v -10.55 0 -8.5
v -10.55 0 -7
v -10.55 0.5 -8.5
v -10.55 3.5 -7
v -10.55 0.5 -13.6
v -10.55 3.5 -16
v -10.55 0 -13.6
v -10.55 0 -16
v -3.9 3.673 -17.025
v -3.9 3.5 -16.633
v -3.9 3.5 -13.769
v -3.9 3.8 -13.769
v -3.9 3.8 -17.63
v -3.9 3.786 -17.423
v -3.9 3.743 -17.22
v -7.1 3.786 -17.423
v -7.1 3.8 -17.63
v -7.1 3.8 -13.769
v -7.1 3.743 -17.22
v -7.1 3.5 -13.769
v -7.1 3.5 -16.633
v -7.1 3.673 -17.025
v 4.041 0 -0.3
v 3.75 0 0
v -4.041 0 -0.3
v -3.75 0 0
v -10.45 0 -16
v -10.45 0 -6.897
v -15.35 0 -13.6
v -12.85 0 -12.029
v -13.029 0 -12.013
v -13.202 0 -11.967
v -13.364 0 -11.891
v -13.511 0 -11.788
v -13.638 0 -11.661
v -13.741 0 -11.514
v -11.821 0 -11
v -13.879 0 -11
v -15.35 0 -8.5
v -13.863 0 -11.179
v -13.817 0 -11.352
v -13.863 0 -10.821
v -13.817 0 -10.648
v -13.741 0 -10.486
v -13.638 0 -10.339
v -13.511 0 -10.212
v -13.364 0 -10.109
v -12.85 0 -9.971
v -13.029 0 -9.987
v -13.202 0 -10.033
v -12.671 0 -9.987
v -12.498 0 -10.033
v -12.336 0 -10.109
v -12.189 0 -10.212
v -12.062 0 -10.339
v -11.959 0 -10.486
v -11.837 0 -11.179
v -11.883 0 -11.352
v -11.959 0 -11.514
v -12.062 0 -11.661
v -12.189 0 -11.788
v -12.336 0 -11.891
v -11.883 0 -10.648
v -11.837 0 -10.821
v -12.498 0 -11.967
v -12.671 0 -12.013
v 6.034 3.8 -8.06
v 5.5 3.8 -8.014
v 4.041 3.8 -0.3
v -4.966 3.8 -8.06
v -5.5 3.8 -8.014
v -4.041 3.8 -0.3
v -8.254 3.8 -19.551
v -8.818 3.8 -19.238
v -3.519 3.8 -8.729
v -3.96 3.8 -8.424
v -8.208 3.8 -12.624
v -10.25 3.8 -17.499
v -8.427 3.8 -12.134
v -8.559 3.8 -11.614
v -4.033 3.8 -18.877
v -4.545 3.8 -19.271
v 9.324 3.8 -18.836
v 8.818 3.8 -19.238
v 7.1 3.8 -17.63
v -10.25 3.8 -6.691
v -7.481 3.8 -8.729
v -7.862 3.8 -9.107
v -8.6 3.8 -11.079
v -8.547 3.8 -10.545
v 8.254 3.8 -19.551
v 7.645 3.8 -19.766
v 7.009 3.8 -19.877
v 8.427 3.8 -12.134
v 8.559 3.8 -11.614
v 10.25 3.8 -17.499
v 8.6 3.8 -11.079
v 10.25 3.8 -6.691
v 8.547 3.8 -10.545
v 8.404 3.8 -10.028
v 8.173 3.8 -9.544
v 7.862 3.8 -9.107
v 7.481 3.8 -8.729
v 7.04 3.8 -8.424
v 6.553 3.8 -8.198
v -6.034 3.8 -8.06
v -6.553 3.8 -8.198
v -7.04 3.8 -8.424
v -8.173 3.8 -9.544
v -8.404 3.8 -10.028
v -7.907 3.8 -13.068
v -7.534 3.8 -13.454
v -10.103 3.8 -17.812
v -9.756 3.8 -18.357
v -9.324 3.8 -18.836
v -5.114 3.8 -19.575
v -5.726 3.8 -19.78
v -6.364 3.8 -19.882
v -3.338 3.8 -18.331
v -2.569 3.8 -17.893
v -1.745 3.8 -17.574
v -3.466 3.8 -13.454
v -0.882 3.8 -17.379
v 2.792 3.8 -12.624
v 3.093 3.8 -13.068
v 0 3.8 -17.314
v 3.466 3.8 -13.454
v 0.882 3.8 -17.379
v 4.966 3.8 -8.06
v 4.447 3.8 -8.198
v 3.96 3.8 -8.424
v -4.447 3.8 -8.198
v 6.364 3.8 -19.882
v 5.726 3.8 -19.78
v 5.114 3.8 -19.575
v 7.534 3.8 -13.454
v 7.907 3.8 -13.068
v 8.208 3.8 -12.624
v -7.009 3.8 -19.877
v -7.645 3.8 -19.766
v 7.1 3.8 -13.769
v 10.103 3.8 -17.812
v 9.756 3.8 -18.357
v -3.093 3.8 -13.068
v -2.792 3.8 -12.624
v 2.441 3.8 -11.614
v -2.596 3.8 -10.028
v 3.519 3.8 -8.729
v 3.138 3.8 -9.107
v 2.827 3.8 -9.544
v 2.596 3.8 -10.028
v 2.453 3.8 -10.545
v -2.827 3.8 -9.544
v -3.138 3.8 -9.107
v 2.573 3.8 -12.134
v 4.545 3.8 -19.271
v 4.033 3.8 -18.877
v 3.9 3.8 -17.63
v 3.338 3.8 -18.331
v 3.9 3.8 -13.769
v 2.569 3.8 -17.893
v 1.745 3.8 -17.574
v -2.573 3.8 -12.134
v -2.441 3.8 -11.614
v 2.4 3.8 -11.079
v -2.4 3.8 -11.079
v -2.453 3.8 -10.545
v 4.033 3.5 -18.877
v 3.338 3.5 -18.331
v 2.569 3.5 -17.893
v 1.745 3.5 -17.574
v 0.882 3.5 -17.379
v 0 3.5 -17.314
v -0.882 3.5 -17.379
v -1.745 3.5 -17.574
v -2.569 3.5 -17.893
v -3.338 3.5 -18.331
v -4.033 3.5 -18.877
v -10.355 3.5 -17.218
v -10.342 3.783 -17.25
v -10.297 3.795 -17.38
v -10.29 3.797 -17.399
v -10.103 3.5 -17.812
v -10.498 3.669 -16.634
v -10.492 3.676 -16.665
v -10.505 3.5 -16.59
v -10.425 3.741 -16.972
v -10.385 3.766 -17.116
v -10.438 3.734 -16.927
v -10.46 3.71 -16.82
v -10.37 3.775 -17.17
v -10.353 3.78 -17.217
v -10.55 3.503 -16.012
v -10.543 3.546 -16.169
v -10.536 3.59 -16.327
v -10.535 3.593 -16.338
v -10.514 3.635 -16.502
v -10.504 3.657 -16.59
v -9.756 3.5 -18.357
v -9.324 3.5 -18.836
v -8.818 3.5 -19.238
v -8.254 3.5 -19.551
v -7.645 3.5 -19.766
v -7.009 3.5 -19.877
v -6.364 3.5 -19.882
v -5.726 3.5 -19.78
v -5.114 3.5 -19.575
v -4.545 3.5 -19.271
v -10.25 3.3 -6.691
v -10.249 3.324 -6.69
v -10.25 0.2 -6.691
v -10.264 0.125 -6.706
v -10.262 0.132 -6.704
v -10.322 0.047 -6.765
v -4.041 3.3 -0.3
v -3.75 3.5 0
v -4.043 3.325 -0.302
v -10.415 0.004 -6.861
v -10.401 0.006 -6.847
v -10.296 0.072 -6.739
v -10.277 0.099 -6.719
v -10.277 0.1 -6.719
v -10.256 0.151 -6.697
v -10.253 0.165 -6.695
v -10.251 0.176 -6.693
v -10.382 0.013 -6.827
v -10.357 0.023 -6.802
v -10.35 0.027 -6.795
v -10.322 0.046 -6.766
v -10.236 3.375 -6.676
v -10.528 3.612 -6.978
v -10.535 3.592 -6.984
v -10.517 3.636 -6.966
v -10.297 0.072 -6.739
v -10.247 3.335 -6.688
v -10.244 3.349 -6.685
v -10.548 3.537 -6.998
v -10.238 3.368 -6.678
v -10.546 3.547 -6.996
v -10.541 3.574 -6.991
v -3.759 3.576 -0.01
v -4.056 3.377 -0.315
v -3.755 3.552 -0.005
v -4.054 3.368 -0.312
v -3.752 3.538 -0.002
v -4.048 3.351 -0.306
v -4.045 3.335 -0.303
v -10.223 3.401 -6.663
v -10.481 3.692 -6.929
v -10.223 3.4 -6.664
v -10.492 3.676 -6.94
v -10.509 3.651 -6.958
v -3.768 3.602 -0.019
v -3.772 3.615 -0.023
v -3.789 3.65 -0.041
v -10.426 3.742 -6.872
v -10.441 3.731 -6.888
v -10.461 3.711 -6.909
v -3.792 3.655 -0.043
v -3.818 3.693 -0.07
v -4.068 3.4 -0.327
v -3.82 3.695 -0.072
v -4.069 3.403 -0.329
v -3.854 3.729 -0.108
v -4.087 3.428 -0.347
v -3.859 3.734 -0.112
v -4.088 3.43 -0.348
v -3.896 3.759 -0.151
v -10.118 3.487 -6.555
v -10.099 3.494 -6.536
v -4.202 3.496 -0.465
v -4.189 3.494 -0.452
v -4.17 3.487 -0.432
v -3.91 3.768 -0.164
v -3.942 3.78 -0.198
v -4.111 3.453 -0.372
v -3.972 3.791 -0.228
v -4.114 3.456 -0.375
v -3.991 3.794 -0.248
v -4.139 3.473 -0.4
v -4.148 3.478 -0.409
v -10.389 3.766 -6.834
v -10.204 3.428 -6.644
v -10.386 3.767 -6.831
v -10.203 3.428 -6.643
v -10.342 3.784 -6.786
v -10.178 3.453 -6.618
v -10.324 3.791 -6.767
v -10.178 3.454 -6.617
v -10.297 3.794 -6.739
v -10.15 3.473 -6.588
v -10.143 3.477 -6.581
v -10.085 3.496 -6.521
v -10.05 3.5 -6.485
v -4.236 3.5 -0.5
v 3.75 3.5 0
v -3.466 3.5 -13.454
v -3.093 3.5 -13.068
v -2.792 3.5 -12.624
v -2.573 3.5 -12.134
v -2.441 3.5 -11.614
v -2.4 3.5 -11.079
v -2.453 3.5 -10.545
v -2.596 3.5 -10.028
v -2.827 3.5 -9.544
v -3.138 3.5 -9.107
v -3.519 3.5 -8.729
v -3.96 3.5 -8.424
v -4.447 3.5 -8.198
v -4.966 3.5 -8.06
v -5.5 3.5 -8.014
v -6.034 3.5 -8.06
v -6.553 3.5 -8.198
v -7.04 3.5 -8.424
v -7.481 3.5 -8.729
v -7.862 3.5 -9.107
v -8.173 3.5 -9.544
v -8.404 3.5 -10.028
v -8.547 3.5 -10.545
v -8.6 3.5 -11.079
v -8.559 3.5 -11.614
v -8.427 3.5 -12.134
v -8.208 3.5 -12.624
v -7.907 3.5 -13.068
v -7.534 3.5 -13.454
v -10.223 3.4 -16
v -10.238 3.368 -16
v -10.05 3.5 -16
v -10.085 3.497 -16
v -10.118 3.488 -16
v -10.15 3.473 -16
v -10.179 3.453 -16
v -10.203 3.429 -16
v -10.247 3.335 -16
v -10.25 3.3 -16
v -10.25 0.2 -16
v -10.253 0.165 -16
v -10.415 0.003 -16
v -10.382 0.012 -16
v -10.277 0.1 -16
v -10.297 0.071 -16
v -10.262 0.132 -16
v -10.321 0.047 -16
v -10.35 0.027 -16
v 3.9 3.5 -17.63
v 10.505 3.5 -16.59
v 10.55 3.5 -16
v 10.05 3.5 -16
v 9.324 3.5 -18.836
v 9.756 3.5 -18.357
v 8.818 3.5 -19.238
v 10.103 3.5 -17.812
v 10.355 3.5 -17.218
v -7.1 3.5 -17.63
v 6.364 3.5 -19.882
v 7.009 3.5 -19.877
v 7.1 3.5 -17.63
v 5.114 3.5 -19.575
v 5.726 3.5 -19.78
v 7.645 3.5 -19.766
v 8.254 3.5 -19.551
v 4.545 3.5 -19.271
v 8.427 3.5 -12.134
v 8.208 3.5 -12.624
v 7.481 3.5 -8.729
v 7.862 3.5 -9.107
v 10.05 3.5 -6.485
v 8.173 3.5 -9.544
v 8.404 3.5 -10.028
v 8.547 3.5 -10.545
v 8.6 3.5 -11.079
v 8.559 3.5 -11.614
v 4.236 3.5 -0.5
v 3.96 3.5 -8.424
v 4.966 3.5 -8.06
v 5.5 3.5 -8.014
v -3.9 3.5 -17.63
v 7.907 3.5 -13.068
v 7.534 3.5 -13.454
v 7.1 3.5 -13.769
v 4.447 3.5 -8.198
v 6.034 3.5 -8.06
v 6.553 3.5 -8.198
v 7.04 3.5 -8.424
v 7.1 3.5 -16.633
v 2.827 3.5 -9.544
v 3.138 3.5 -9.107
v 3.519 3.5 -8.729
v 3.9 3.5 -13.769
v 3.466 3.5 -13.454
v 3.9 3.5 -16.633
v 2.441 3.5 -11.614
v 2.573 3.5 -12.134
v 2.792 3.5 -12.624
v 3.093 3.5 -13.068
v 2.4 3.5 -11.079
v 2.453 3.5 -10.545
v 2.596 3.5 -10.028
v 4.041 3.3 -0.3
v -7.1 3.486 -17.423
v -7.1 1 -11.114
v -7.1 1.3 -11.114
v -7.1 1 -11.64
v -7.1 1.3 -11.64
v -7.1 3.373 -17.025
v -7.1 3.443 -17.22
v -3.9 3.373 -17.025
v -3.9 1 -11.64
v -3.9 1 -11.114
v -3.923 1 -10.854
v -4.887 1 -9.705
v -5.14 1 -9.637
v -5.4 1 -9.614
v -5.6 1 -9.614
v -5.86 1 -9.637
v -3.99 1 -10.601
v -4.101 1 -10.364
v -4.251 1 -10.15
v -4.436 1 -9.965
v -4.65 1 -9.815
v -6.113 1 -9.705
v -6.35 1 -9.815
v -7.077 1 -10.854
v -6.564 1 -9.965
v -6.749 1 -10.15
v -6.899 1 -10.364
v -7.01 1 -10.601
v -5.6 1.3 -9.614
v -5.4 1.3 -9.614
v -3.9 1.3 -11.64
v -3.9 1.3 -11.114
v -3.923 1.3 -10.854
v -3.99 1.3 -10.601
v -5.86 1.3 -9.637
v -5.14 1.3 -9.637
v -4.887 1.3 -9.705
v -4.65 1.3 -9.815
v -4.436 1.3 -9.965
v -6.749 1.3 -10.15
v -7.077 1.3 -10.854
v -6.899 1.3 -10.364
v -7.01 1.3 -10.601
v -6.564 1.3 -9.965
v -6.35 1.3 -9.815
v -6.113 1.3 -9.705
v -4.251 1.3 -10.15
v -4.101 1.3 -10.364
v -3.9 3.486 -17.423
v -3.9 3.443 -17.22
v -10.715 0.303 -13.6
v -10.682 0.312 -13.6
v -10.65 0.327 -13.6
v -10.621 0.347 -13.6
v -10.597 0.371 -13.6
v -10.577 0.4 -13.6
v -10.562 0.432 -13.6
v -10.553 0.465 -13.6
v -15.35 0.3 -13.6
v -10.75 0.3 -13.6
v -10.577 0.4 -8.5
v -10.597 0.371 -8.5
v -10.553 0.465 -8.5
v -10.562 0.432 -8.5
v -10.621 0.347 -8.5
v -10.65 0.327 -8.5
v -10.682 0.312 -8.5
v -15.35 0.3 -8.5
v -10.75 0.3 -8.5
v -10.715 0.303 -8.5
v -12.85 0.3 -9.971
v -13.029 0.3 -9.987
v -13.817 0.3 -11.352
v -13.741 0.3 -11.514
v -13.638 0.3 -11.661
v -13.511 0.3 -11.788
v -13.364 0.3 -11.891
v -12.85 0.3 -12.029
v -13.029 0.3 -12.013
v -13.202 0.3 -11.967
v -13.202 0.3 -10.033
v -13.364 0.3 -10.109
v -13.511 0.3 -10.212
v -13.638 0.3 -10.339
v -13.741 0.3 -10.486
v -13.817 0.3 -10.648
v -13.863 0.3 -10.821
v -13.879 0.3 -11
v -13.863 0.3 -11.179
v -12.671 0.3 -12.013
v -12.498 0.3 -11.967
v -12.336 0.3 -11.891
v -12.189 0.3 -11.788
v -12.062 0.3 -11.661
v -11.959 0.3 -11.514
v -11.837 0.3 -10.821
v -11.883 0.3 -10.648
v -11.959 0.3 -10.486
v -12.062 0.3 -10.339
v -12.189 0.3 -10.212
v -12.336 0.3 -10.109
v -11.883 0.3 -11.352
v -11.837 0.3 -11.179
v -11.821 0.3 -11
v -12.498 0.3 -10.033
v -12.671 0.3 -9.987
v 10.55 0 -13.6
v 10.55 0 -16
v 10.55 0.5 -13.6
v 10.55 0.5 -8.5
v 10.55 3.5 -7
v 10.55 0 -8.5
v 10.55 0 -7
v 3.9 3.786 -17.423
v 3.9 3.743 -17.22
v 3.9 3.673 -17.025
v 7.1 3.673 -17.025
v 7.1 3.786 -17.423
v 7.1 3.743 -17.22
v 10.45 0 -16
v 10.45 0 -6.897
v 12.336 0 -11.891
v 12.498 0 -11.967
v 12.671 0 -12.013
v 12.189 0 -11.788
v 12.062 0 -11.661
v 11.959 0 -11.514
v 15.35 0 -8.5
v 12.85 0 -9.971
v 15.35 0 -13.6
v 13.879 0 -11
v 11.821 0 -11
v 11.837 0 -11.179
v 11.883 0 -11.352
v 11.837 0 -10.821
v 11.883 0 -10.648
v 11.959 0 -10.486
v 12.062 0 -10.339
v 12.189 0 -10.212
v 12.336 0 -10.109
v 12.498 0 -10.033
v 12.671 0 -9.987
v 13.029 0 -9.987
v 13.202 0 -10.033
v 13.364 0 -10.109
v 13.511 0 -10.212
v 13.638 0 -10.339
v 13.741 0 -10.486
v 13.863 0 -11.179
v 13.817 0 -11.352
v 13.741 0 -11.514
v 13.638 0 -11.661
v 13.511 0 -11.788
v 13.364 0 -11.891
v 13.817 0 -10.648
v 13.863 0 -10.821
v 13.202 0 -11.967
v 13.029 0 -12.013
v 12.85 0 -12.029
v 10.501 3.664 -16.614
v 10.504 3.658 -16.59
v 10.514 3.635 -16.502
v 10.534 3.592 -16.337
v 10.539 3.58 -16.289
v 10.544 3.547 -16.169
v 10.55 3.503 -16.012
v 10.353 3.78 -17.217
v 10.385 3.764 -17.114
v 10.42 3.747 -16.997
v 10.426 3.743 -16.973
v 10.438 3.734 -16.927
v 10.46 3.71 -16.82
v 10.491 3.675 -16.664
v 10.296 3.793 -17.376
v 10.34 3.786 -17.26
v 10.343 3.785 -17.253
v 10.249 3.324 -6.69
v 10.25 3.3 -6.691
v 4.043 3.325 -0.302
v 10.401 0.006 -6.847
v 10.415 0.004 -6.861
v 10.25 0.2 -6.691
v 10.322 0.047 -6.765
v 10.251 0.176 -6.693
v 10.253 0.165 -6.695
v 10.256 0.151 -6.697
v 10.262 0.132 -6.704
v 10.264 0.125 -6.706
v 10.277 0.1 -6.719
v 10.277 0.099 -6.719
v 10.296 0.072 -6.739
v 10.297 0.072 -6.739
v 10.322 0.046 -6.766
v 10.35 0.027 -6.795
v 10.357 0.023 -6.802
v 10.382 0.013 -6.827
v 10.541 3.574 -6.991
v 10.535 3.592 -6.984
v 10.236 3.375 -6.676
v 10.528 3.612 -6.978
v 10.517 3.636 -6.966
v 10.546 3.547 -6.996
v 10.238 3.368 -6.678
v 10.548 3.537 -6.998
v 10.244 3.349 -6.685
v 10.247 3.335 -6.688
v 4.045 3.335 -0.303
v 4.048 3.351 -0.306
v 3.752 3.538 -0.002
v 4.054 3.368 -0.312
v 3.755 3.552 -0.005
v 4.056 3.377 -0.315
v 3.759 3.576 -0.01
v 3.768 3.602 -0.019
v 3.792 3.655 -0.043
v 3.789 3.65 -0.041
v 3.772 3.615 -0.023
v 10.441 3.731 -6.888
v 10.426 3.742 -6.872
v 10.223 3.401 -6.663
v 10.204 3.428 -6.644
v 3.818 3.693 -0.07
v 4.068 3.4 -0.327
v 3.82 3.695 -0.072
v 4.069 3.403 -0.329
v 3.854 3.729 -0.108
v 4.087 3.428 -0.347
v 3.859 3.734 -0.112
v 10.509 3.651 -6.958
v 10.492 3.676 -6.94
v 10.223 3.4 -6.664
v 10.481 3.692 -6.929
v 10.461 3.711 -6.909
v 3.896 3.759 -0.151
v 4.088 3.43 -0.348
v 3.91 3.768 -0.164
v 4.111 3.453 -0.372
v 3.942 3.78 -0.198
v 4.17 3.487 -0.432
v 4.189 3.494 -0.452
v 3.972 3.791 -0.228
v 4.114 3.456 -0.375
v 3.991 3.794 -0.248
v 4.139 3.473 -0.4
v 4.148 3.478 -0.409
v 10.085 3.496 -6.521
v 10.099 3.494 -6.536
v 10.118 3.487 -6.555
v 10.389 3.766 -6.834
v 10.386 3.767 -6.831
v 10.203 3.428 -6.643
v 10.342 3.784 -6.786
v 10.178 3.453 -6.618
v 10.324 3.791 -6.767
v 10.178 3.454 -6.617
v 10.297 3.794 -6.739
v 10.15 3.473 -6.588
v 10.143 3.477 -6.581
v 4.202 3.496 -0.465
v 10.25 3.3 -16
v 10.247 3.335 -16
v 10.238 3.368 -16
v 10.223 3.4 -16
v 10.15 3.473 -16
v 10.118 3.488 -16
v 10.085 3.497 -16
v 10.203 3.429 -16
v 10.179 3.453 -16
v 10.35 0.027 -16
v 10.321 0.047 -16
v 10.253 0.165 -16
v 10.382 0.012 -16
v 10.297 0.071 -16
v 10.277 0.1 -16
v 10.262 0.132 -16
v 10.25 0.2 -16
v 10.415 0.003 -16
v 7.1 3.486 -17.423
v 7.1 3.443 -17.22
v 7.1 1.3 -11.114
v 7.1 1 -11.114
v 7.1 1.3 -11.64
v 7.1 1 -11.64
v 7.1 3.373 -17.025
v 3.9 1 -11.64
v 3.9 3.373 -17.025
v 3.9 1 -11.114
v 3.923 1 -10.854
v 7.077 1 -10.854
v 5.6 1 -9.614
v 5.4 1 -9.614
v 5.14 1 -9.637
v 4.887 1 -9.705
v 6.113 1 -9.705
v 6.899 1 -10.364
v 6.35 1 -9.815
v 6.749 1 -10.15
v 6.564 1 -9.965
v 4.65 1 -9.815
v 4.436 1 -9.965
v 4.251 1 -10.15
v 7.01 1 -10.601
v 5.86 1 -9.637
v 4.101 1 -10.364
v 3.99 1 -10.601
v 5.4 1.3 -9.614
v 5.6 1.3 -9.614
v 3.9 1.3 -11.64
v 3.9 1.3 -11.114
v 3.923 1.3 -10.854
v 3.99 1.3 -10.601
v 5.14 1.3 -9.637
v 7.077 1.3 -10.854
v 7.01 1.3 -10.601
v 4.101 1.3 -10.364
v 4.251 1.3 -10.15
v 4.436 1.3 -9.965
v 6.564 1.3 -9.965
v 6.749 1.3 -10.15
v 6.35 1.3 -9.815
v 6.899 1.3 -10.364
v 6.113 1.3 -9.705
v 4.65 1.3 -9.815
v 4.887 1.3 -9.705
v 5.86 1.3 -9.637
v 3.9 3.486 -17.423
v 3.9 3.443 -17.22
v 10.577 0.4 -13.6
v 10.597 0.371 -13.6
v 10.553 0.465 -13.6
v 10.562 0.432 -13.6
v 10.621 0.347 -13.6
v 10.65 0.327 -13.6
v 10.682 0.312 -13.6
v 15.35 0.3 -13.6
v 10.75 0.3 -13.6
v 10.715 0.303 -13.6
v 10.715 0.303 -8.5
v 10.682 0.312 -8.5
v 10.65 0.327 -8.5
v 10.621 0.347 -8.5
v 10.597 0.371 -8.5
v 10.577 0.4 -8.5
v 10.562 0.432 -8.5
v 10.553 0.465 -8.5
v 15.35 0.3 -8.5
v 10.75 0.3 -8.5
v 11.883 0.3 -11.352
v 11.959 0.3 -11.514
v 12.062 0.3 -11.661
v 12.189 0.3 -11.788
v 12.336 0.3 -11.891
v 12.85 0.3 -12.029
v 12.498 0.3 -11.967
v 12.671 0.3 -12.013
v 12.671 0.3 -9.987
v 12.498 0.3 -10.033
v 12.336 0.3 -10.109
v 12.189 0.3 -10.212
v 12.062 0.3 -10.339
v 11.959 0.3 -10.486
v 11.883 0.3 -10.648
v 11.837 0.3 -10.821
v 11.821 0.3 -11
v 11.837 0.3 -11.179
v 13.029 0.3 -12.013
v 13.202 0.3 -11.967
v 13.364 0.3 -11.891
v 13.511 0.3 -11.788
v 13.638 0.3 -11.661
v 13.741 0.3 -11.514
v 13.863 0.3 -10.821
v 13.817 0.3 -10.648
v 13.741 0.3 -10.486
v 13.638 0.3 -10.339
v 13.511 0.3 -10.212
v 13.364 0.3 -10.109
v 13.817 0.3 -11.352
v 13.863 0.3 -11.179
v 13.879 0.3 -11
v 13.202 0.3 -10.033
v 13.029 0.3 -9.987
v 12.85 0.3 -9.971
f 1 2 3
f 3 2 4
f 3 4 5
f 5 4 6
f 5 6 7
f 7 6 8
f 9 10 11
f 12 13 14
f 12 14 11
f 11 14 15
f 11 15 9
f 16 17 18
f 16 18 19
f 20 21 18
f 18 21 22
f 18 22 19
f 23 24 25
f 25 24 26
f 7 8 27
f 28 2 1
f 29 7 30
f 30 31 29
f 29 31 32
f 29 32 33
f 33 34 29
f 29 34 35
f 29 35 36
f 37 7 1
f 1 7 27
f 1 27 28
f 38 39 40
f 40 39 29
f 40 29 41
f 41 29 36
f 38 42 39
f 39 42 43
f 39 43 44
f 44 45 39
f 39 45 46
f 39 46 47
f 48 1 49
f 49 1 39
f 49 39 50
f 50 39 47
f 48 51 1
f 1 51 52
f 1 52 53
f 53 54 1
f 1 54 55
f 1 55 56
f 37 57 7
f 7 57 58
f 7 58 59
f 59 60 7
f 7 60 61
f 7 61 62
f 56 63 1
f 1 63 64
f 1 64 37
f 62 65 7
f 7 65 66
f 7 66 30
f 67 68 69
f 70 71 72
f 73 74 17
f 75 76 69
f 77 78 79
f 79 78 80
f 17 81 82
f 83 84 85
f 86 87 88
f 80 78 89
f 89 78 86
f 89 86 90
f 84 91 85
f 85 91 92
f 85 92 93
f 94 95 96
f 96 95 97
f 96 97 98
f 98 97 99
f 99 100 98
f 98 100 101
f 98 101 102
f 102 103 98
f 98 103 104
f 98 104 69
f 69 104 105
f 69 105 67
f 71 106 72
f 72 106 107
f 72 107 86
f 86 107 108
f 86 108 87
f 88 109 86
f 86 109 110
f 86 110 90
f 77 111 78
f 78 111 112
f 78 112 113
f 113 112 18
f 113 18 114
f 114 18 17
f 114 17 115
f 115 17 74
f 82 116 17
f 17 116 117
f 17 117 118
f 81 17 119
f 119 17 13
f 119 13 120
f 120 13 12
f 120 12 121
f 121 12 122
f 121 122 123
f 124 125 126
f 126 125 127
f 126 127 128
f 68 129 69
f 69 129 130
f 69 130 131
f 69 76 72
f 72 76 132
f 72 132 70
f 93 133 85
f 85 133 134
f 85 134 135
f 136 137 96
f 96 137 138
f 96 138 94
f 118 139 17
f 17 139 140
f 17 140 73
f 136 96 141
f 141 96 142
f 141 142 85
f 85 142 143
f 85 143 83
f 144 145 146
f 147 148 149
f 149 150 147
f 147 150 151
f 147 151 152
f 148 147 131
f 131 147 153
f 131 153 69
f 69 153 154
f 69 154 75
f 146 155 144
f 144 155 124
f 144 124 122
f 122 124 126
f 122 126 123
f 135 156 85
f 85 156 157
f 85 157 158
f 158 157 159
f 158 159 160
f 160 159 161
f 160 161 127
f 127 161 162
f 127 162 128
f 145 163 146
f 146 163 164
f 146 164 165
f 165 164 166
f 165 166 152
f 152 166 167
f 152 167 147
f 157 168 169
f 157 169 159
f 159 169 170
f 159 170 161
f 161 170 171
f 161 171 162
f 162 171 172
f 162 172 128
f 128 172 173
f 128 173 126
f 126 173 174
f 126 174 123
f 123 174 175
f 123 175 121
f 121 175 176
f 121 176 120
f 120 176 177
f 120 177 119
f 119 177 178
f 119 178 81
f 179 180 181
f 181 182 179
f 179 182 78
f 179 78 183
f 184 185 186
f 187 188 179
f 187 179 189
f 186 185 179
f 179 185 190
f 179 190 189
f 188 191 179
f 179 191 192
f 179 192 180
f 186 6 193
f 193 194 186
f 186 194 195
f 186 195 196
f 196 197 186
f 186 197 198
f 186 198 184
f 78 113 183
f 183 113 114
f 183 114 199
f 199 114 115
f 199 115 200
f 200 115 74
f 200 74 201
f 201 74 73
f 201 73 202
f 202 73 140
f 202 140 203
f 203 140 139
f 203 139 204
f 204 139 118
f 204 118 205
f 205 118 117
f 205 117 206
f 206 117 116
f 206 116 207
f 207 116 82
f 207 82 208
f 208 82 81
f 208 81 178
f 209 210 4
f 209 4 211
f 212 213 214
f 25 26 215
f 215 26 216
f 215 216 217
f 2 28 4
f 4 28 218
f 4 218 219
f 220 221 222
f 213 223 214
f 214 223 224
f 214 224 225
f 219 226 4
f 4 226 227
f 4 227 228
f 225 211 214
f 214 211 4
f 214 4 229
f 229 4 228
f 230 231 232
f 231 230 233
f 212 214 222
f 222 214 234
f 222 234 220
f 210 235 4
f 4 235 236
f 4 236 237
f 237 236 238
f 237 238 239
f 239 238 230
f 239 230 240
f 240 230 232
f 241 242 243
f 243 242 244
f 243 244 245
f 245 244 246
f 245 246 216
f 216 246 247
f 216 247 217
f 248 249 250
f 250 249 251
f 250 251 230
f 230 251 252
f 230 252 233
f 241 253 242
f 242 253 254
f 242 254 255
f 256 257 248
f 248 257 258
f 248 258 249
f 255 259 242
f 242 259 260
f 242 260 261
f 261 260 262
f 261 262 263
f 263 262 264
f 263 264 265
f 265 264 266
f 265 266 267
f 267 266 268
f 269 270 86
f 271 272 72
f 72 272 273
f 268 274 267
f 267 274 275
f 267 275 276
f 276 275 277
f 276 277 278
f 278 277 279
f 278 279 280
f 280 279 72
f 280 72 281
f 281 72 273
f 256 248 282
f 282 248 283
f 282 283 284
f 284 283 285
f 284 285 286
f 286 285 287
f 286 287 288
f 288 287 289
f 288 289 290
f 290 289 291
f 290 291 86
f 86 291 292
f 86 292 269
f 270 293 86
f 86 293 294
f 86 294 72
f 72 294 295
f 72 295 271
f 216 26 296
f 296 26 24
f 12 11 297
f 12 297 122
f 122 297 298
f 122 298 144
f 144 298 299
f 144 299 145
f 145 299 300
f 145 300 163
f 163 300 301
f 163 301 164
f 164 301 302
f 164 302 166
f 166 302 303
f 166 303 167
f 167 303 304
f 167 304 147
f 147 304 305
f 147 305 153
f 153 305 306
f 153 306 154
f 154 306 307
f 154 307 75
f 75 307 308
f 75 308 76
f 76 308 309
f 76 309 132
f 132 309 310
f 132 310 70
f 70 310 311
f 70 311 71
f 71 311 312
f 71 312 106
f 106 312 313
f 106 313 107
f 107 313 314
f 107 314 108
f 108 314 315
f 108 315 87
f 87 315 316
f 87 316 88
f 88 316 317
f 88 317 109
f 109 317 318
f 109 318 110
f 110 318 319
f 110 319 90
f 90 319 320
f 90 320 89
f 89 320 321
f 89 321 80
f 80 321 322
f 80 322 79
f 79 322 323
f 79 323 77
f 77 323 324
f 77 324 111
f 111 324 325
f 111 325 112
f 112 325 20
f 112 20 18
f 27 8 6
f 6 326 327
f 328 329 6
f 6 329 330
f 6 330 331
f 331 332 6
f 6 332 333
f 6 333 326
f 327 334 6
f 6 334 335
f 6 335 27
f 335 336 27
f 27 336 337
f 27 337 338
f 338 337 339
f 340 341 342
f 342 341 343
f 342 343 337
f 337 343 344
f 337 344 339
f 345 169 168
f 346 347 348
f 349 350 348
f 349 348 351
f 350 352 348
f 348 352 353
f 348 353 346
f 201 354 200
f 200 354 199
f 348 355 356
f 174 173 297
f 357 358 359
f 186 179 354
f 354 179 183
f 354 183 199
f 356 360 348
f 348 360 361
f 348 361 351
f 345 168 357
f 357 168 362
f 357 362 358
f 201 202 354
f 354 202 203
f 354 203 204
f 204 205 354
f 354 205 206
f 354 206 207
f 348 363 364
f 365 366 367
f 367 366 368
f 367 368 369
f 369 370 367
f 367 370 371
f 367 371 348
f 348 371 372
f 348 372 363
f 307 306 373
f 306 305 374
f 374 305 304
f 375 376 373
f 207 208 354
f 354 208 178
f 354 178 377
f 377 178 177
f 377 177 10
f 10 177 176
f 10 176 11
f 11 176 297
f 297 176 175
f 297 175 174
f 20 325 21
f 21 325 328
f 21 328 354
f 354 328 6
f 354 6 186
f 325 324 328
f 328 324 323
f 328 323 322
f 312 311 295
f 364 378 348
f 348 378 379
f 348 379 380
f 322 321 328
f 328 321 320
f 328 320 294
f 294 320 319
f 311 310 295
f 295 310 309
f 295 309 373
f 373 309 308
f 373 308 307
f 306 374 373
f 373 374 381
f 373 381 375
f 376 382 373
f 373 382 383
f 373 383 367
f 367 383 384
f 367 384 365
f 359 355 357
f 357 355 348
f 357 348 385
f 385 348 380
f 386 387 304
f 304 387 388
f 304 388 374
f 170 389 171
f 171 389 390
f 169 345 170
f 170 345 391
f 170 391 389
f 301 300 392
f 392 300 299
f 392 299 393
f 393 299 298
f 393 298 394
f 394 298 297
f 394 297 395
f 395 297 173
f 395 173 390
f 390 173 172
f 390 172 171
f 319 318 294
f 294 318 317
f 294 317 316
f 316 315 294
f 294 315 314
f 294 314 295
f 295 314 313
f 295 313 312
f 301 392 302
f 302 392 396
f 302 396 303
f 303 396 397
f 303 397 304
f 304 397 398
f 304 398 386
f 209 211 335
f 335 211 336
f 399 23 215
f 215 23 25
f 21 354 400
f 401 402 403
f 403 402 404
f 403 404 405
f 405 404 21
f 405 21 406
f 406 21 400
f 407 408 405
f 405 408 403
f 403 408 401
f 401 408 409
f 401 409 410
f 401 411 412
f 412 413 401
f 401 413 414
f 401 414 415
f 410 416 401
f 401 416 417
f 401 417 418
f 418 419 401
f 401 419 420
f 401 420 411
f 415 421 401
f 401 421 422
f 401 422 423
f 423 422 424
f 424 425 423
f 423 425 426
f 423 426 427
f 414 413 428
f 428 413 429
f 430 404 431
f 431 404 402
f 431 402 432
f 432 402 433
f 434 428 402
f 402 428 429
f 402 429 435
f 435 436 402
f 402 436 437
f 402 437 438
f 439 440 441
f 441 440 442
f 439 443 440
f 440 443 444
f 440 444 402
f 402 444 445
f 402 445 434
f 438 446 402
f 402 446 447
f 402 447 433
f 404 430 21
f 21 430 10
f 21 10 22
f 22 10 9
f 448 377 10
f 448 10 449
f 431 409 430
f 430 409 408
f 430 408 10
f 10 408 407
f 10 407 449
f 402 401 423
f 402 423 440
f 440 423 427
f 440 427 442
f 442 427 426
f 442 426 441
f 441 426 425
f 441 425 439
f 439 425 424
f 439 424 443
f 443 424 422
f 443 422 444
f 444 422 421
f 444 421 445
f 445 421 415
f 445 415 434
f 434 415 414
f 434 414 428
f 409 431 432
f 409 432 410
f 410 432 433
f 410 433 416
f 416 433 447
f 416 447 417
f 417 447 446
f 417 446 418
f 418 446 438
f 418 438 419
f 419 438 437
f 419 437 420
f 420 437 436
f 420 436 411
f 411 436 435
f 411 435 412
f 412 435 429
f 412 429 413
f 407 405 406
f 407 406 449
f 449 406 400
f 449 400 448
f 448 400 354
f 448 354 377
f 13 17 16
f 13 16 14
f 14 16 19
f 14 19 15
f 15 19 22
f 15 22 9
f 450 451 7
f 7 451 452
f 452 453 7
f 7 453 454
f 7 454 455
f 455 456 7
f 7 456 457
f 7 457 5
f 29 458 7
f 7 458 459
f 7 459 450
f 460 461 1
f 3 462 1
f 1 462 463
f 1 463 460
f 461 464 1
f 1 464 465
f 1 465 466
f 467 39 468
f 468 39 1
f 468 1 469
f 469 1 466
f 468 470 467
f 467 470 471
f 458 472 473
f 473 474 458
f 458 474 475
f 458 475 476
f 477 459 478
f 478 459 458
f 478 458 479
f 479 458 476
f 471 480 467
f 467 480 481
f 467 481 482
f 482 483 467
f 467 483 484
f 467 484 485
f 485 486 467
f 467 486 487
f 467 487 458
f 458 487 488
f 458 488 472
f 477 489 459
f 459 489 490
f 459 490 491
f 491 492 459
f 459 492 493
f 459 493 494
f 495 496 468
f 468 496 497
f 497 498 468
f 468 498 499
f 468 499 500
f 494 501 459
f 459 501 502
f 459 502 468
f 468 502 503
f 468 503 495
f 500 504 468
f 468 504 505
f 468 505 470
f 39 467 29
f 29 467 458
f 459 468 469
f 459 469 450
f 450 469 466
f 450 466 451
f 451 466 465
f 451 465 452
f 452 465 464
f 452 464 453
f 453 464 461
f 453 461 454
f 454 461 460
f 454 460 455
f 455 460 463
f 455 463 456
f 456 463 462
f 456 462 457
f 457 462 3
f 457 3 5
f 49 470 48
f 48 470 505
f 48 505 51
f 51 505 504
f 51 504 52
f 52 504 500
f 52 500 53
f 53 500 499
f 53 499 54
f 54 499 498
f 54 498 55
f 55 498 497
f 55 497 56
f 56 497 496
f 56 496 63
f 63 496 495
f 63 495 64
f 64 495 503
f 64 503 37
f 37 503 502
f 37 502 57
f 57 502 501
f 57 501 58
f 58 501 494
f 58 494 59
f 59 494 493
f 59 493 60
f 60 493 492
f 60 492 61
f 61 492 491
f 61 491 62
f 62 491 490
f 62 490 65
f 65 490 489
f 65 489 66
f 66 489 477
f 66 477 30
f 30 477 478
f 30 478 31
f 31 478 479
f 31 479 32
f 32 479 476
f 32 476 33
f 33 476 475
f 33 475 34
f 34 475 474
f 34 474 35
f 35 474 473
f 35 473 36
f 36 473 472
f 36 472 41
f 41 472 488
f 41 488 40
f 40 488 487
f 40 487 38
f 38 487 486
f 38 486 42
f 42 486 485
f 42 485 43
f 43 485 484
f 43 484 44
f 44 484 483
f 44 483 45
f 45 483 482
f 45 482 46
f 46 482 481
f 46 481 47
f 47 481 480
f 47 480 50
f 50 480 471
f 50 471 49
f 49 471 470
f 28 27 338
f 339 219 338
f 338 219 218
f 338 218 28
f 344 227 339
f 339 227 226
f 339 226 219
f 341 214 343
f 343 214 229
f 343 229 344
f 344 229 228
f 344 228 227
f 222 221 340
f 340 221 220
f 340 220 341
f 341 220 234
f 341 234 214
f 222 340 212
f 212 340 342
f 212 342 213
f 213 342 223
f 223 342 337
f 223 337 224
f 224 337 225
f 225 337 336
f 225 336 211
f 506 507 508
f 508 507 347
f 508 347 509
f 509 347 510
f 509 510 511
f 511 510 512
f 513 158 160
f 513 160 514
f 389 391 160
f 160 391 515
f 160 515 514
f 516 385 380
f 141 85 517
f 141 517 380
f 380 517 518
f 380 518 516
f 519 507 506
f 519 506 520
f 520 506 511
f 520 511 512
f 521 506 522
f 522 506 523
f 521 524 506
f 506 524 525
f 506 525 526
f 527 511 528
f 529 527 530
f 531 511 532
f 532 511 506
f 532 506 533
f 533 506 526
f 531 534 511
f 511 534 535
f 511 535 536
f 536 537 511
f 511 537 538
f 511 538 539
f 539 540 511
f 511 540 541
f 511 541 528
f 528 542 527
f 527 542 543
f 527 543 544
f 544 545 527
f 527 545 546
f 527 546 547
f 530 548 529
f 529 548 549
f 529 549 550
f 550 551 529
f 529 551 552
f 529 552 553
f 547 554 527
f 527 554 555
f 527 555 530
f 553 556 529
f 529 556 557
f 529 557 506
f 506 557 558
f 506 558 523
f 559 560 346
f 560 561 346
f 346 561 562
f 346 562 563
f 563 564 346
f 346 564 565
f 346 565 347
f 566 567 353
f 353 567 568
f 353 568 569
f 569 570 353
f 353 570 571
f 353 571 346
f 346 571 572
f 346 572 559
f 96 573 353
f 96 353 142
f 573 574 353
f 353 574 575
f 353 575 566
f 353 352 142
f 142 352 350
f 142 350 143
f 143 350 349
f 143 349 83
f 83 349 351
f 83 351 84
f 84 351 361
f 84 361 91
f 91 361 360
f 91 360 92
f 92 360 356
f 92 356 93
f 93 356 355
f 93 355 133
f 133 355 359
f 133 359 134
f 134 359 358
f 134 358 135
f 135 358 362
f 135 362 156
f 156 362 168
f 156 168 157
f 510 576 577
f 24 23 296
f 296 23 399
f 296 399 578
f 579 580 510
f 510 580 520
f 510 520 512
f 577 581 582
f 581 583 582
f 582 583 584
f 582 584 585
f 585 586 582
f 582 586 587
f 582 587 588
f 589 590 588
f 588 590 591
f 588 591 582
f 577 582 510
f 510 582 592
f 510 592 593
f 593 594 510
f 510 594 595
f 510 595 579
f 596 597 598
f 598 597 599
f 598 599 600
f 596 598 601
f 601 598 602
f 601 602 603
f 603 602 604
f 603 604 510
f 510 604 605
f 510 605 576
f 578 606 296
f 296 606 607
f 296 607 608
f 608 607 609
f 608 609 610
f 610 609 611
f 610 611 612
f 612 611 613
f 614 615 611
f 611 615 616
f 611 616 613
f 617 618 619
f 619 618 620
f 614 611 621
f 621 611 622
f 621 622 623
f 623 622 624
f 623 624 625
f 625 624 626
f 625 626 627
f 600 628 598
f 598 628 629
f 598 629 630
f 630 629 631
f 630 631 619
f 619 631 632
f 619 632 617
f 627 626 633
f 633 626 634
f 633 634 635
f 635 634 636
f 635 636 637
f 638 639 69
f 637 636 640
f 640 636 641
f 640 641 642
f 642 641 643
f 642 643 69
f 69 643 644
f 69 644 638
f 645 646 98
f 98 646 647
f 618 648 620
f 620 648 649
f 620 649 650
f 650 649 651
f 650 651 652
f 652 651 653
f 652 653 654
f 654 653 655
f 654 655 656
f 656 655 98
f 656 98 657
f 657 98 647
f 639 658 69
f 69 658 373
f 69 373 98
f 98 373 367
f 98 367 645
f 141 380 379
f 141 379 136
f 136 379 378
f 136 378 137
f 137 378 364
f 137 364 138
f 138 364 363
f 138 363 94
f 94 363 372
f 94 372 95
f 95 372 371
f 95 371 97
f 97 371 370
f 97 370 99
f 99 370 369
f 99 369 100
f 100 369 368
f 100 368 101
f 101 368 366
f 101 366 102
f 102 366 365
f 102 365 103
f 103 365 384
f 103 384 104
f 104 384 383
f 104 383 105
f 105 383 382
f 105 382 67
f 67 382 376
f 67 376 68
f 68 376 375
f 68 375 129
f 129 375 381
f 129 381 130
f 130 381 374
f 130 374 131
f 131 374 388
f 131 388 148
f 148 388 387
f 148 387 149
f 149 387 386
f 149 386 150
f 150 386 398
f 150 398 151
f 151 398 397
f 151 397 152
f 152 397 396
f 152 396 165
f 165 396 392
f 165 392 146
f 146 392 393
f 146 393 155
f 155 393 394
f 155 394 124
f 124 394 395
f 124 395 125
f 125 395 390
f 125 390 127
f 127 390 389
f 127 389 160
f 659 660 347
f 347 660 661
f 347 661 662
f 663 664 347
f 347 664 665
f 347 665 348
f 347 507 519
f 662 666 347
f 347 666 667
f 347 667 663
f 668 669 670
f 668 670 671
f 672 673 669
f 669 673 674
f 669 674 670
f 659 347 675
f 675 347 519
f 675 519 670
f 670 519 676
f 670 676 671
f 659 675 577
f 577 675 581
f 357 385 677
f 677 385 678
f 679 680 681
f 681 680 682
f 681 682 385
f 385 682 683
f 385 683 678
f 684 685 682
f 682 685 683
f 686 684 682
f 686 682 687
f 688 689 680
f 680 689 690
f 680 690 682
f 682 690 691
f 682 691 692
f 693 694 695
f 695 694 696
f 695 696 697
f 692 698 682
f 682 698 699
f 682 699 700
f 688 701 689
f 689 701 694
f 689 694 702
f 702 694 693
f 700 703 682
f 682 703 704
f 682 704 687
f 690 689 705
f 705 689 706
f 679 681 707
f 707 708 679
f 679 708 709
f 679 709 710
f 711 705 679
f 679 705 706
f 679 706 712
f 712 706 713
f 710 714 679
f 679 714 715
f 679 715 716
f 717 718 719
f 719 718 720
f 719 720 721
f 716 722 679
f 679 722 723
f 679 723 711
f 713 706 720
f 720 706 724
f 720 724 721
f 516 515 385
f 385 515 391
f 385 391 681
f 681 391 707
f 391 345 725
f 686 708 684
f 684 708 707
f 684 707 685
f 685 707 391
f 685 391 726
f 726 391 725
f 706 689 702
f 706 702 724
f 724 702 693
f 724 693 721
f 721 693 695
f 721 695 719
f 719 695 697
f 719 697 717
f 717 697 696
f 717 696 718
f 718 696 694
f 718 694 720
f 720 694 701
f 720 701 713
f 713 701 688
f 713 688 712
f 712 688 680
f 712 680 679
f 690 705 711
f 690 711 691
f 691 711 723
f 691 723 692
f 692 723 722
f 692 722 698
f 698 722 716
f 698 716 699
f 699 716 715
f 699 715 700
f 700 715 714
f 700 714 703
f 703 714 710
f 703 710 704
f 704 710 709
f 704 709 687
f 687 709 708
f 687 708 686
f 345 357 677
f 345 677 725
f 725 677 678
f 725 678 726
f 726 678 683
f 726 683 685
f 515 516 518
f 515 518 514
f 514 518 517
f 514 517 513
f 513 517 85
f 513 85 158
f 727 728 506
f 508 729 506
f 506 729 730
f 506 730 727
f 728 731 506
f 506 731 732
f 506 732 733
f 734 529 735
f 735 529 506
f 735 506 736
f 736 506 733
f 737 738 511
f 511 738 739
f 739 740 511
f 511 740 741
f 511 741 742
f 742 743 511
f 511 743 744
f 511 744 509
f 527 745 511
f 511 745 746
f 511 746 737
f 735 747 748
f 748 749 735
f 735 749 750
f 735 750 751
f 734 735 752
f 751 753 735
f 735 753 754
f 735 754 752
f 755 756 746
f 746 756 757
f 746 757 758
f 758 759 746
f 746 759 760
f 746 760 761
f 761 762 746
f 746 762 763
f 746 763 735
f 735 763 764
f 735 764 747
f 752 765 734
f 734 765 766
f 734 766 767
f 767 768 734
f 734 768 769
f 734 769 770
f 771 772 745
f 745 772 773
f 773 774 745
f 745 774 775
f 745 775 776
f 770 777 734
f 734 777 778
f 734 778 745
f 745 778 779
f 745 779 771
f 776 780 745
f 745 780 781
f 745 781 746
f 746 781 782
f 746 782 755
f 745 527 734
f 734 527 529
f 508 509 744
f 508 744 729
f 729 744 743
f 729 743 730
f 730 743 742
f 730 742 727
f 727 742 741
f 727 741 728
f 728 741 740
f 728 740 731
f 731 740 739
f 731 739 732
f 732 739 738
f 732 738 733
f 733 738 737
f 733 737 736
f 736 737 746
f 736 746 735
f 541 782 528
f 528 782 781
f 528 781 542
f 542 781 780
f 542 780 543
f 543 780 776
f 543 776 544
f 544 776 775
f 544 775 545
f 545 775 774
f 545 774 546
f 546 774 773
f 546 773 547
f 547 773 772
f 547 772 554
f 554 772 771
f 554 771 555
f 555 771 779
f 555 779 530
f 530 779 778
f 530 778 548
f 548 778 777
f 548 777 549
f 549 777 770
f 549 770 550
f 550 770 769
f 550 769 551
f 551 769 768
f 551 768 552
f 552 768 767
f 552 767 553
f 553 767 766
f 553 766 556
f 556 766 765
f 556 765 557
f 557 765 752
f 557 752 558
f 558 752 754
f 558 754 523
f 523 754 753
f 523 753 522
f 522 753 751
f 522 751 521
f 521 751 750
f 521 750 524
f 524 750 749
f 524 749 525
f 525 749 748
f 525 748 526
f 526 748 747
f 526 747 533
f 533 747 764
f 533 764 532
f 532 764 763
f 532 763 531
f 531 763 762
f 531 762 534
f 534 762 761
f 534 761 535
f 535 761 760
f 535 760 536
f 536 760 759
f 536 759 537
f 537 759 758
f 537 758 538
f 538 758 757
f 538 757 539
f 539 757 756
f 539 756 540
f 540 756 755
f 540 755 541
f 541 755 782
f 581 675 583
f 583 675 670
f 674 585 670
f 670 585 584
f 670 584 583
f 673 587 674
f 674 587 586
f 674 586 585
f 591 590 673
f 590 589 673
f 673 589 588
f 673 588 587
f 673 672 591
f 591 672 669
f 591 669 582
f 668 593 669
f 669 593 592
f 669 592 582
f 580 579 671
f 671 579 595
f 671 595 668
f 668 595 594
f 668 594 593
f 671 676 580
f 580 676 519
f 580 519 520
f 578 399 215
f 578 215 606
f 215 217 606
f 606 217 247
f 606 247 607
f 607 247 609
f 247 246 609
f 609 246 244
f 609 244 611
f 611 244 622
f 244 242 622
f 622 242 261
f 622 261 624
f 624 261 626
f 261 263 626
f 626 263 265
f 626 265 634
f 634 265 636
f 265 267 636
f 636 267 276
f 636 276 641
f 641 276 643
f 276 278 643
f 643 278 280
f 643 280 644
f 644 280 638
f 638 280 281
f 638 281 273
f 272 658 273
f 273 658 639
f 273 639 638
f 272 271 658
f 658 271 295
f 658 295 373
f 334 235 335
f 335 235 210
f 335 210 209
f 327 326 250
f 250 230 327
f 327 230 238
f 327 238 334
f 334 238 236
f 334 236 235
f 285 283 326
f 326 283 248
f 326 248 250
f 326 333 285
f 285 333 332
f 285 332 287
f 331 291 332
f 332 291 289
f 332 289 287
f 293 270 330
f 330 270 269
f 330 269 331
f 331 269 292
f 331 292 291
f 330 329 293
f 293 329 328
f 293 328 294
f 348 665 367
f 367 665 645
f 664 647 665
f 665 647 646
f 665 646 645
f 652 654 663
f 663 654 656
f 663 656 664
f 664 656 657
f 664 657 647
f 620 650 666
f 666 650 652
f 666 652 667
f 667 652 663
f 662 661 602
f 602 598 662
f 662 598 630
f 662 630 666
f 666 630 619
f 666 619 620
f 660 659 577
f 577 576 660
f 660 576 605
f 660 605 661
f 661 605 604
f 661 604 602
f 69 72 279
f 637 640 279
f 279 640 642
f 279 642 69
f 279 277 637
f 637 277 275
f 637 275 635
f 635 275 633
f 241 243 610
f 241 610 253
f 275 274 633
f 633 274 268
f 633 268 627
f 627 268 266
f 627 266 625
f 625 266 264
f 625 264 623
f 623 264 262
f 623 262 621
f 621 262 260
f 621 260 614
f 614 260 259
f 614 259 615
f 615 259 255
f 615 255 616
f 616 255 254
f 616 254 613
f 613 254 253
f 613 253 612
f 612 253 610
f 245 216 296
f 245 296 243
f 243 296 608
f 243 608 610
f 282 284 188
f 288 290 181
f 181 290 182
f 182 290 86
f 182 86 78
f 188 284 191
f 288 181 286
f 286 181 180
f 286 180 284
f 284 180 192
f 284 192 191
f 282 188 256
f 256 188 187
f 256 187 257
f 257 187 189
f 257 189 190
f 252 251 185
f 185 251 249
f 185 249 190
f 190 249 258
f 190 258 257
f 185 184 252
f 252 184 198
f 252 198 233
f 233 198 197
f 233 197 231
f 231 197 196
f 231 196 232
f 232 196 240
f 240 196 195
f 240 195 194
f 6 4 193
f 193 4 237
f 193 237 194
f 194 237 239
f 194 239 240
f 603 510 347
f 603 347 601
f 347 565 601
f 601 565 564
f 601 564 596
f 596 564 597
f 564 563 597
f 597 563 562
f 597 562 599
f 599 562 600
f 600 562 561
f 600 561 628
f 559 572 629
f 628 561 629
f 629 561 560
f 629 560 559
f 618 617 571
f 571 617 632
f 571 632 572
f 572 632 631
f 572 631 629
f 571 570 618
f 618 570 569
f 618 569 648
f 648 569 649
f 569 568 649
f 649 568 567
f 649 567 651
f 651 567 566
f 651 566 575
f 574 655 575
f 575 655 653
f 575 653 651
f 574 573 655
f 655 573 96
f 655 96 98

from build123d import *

# Parameters (mm, degrees)
BOSS_EXTRUDE1_DEPTH = 3.8
SHELL1_START        = -21
SHELL1_OUTLINE_W    = 10.25
SHELL1_OUTLINE_H    = 3.5
SHELL1_DEPTH        = 20.7
SHELL1_START_2      = -19.893320937
SHELL1_2_OUTLINE_W  = 1.75
SHELL1_2_OUTLINE_H  = 3.5
SHELL1_2_DEPTH      = 3.893320937
BOSS_EXTRUDE2_DEPTH = 3.2
FILLET1_R           = 1.5
FILLET2_R           = 1.5
SKETCH4_W           = 5.1
SKETCH4_H           = 0.3
BOSS_EXTRUDE3_DEPTH = 4.8
FILLET3_R           = 0.2
SKETCH5_R           = 1.028757753
CUT_EXTRUDE1_DEPTH  = 4.8
FILLET4_R           = 0.2
FILLET5_R           = 0.2
FILLET6_START       = -5
FILLET6_DEPTH       = 10
FILLET6_START_2     = -19.893320937
FILLET6_2_DEPTH     = 13.893320937


with BuildPart() as part:
    # Sketch2 → Boss-Extrude1 (new body)
    with BuildSketch(Plane(origin=(0, 0, 0), x_dir=(1, 0, 0), z_dir=(0, 1, 0))):
        with BuildLine():
            Line((0, 0), (-3.75, 0))
            Line((-3.75, 0), (-10.55, 7))
            Line((-10.55, 7), (-10.55, 16))
            ThreePointArc((-10.55, 16), (-8.229026759, 19.561694912), (-4.03336762, 18.876835935))
            ThreePointArc((-4.03336762, 18.876835935), (-2.162785983, 17.71835226), (0, 17.313980062))
            Line((0, 17.313980062), (0, 0))
        make_face()
        with BuildLine():
            Line((-7.1, 13.769163671), (-7.1, 17.313980062))
            Line((-7.1, 17.313980062), (-3.9, 17.313980062))
            Line((-3.9, 17.313980062), (-3.9, 13.769163671))
            ThreePointArc((-3.9, 13.769163671), (-5.5, 8.013980062), (-7.1, 13.769163671))
        make_face(mode=Mode.SUBTRACT)
    extrude(amount=BOSS_EXTRUDE1_DEPTH)

    # Shell1: read off the stored shape, not the designer's step
    # Shell1 outline → Shell1 (cut)
    with BuildSketch(Plane.XY.offset(SHELL1_START)):
        with Locations((-5.125, 1.75)):
            Rectangle(SHELL1_OUTLINE_W, SHELL1_OUTLINE_H)
    extrude(amount=SHELL1_DEPTH, mode=Mode.SUBTRACT)

    # Shell1 2 outline → Shell1 2 (cut)
    with BuildSketch(Plane.XY.offset(SHELL1_START_2)):
        with Locations((-11.125, 1.75)):
            Rectangle(SHELL1_2_OUTLINE_W, SHELL1_2_OUTLINE_H)
    extrude(amount=SHELL1_2_DEPTH, mode=Mode.SUBTRACT)

    # Sketch3 → Boss-Extrude2 (add)
    with BuildSketch(Plane(origin=(-7.1, 0, 0), x_dir=(0, 0, -1), z_dir=(1, 0, 0))):
        Polygon((17.313980062, 3.5), (11.640356881, 1), (9.614191522, 1), (9.614191522, 1.3), (11.640356881, 1.3), (17.313980062, 3.8), align=None)
    extrude(amount=BOSS_EXTRUDE2_DEPTH)

    # Fillet1
    fillet1_edges = [part.edges().sort_by_distance(p)[0] for p in [
        (-3.9, 1.15, -9.614191522),
        (-7.1, 1.15, -9.614191522),
    ]]
    fillet(fillet1_edges, radius=FILLET1_R)

    # Fillet2
    fillet2_edges = [part.edges().sort_by_distance(p)[0] for p in [
        (-5.5, 3.8, -17.313980062),
        (-5.5, 3.5, -17.313980062),
    ]]
    fillet(fillet2_edges, radius=FILLET2_R)

    # Sketch4 → Boss-Extrude3 (add)
    with BuildSketch(Plane.ZY.offset(10.55)):
        with Locations((-11.05, 0.15)):
            Rectangle(SKETCH4_W, SKETCH4_H)
    extrude(amount=BOSS_EXTRUDE3_DEPTH)

    # Fillet3
    fillet3_edges = [part.edges().sort_by_distance(p)[0] for p in [
        (-10.55, 0.3, -11.05),
    ]]
    fillet(fillet3_edges, radius=FILLET3_R)

    # Sketch5 → Cut-Extrude1 (cut)
    with BuildSketch(Plane(origin=(0, 0.3, 0), x_dir=(1, 0, 0), z_dir=(0, 1, 0))):
        with Locations(Location((-12.85, 11, 0), (0, 0, 270))):
            Circle(SKETCH5_R)
    extrude(amount=-CUT_EXTRUDE1_DEPTH, mode=Mode.SUBTRACT)

    # Fillet4
    fillet4_edges = [part.edges().sort_by_distance(p)[0] for p in [
        (-10.25, 0, -11.345588235),
    ]]
    fillet(fillet4_edges, radius=FILLET4_R)

    # Mirror1: part across plane


with BuildPart() as part_1:
    add(part.part)
    add(part.part.mirror(Plane(origin=(0, 3.8, -17.313980062), x_dir=(0, 0, 1), z_dir=(-1, 0, 0))))

    # Fillet5
    fillet5_edges = [part_1.edges().sort_by_distance(p)[0] for p in [
        (10.25, 3.5, -11.345588235),
        (-10.25, 3.5, -11.345588235),
        (0, 3.5, -0.3),
    ]]
    fillet(fillet5_edges, radius=FILLET5_R)

    # Fillet6: read off the stored shape, not the designer's step
    # Fillet6 outline → Fillet6 (cut)
    with BuildSketch(Plane.YZ.offset(FILLET6_START)):
        with BuildLine():
            ThreePointArc((3.5, 0), (3.712132034, -0.087867966), (3.8, -0.3))
            Line((3.8, -0.3), (3.8, 0))
            Line((3.8, 0), (3.5, 0))
        make_face()
    extrude(amount=FILLET6_DEPTH, mode=Mode.SUBTRACT)

    # Fillet6 2 outline → Fillet6 2 (cut)
    with BuildSketch(Plane.XY.offset(FILLET6_START_2)):
        with BuildLine():
            Line((10.55, 3.8), (10.25, 3.8))
            ThreePointArc((10.25, 3.8), (10.462132034, 3.712132034), (10.55, 3.5))
            Line((10.55, 3.5), (10.55, 3.8))
        make_face()
        with BuildLine():
            ThreePointArc((-10.55, 3.5), (-10.462132034, 3.712132034), (-10.25, 3.8))
            Line((-10.25, 3.8), (-10.55, 3.8))
            Line((-10.55, 3.8), (-10.55, 3.5))
        make_face()
    extrude(amount=FILLET6_2_DEPTH, mode=Mode.SUBTRACT)


solid = part_1.part
